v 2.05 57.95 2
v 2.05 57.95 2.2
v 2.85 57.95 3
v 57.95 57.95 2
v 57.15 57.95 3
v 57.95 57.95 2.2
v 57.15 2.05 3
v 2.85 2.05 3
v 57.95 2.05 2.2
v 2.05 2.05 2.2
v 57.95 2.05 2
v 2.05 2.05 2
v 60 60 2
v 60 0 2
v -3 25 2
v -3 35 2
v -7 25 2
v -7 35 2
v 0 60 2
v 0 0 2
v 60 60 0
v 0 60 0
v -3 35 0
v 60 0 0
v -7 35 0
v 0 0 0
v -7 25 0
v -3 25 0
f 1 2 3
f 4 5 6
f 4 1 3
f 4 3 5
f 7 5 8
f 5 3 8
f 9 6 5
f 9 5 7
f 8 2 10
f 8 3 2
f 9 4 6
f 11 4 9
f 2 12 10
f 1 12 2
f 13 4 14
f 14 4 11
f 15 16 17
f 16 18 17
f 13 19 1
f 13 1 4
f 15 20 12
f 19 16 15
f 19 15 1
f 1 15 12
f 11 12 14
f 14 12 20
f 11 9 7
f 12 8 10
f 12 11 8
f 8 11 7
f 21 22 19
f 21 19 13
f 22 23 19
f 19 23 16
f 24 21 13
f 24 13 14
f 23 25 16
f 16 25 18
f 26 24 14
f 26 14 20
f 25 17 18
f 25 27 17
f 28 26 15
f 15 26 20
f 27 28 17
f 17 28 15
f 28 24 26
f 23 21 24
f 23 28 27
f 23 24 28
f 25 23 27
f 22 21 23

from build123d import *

# Parameters (mm, degrees)
PAD_DEPTH        = 2
SKETCH001_W      = 55.9
SKETCH001_H      = 55.9
PAD001_DEPTH     = 1
CHAMFER_SIZE2    = 0.8
CHAMFER_SIZE     = 0.8
CHAMFER001_SIZE2 = 0.8
CHAMFER001_SIZE  = 0.8


with BuildPart() as part:
    # Sketch → Pad (new body)
    with BuildSketch(Plane.XY):
        Polygon((0, 60), (60, 60), (60, 0), (0, 0), (-3, 25), (-7, 25), (-7, 35), (-3, 35), align=None)
    extrude(amount=PAD_DEPTH)

    # Sketch001 → Pad001 (join)
    with BuildSketch(Plane.XY.offset(2)):
        with Locations((30, 30)):
            Rectangle(SKETCH001_W, SKETCH001_H)
    extrude(amount=PAD001_DEPTH)

    # Chamfer
    chamfer_edges = [part.edges().sort_by_distance(p)[0] for p in [
        (2.05, 30, 3),
    ]]
    chamfer_side = part.faces().sort_by_distance((2.05, 30, 2.5))[0]
    chamfer(chamfer_edges, length=CHAMFER_SIZE, length2=CHAMFER_SIZE2, reference=chamfer_side)

    # Chamfer001
    chamfer001_edges = [part.edges().sort_by_distance(p)[0] for p in [
        (57.95, 30, 3),
    ]]
    chamfer001_side = part.faces().sort_by_distance((30.4, 30, 3))[0]
    chamfer(chamfer001_edges, length=CHAMFER001_SIZE, length2=CHAMFER001_SIZE2, reference=chamfer001_side)


solid = part.part
